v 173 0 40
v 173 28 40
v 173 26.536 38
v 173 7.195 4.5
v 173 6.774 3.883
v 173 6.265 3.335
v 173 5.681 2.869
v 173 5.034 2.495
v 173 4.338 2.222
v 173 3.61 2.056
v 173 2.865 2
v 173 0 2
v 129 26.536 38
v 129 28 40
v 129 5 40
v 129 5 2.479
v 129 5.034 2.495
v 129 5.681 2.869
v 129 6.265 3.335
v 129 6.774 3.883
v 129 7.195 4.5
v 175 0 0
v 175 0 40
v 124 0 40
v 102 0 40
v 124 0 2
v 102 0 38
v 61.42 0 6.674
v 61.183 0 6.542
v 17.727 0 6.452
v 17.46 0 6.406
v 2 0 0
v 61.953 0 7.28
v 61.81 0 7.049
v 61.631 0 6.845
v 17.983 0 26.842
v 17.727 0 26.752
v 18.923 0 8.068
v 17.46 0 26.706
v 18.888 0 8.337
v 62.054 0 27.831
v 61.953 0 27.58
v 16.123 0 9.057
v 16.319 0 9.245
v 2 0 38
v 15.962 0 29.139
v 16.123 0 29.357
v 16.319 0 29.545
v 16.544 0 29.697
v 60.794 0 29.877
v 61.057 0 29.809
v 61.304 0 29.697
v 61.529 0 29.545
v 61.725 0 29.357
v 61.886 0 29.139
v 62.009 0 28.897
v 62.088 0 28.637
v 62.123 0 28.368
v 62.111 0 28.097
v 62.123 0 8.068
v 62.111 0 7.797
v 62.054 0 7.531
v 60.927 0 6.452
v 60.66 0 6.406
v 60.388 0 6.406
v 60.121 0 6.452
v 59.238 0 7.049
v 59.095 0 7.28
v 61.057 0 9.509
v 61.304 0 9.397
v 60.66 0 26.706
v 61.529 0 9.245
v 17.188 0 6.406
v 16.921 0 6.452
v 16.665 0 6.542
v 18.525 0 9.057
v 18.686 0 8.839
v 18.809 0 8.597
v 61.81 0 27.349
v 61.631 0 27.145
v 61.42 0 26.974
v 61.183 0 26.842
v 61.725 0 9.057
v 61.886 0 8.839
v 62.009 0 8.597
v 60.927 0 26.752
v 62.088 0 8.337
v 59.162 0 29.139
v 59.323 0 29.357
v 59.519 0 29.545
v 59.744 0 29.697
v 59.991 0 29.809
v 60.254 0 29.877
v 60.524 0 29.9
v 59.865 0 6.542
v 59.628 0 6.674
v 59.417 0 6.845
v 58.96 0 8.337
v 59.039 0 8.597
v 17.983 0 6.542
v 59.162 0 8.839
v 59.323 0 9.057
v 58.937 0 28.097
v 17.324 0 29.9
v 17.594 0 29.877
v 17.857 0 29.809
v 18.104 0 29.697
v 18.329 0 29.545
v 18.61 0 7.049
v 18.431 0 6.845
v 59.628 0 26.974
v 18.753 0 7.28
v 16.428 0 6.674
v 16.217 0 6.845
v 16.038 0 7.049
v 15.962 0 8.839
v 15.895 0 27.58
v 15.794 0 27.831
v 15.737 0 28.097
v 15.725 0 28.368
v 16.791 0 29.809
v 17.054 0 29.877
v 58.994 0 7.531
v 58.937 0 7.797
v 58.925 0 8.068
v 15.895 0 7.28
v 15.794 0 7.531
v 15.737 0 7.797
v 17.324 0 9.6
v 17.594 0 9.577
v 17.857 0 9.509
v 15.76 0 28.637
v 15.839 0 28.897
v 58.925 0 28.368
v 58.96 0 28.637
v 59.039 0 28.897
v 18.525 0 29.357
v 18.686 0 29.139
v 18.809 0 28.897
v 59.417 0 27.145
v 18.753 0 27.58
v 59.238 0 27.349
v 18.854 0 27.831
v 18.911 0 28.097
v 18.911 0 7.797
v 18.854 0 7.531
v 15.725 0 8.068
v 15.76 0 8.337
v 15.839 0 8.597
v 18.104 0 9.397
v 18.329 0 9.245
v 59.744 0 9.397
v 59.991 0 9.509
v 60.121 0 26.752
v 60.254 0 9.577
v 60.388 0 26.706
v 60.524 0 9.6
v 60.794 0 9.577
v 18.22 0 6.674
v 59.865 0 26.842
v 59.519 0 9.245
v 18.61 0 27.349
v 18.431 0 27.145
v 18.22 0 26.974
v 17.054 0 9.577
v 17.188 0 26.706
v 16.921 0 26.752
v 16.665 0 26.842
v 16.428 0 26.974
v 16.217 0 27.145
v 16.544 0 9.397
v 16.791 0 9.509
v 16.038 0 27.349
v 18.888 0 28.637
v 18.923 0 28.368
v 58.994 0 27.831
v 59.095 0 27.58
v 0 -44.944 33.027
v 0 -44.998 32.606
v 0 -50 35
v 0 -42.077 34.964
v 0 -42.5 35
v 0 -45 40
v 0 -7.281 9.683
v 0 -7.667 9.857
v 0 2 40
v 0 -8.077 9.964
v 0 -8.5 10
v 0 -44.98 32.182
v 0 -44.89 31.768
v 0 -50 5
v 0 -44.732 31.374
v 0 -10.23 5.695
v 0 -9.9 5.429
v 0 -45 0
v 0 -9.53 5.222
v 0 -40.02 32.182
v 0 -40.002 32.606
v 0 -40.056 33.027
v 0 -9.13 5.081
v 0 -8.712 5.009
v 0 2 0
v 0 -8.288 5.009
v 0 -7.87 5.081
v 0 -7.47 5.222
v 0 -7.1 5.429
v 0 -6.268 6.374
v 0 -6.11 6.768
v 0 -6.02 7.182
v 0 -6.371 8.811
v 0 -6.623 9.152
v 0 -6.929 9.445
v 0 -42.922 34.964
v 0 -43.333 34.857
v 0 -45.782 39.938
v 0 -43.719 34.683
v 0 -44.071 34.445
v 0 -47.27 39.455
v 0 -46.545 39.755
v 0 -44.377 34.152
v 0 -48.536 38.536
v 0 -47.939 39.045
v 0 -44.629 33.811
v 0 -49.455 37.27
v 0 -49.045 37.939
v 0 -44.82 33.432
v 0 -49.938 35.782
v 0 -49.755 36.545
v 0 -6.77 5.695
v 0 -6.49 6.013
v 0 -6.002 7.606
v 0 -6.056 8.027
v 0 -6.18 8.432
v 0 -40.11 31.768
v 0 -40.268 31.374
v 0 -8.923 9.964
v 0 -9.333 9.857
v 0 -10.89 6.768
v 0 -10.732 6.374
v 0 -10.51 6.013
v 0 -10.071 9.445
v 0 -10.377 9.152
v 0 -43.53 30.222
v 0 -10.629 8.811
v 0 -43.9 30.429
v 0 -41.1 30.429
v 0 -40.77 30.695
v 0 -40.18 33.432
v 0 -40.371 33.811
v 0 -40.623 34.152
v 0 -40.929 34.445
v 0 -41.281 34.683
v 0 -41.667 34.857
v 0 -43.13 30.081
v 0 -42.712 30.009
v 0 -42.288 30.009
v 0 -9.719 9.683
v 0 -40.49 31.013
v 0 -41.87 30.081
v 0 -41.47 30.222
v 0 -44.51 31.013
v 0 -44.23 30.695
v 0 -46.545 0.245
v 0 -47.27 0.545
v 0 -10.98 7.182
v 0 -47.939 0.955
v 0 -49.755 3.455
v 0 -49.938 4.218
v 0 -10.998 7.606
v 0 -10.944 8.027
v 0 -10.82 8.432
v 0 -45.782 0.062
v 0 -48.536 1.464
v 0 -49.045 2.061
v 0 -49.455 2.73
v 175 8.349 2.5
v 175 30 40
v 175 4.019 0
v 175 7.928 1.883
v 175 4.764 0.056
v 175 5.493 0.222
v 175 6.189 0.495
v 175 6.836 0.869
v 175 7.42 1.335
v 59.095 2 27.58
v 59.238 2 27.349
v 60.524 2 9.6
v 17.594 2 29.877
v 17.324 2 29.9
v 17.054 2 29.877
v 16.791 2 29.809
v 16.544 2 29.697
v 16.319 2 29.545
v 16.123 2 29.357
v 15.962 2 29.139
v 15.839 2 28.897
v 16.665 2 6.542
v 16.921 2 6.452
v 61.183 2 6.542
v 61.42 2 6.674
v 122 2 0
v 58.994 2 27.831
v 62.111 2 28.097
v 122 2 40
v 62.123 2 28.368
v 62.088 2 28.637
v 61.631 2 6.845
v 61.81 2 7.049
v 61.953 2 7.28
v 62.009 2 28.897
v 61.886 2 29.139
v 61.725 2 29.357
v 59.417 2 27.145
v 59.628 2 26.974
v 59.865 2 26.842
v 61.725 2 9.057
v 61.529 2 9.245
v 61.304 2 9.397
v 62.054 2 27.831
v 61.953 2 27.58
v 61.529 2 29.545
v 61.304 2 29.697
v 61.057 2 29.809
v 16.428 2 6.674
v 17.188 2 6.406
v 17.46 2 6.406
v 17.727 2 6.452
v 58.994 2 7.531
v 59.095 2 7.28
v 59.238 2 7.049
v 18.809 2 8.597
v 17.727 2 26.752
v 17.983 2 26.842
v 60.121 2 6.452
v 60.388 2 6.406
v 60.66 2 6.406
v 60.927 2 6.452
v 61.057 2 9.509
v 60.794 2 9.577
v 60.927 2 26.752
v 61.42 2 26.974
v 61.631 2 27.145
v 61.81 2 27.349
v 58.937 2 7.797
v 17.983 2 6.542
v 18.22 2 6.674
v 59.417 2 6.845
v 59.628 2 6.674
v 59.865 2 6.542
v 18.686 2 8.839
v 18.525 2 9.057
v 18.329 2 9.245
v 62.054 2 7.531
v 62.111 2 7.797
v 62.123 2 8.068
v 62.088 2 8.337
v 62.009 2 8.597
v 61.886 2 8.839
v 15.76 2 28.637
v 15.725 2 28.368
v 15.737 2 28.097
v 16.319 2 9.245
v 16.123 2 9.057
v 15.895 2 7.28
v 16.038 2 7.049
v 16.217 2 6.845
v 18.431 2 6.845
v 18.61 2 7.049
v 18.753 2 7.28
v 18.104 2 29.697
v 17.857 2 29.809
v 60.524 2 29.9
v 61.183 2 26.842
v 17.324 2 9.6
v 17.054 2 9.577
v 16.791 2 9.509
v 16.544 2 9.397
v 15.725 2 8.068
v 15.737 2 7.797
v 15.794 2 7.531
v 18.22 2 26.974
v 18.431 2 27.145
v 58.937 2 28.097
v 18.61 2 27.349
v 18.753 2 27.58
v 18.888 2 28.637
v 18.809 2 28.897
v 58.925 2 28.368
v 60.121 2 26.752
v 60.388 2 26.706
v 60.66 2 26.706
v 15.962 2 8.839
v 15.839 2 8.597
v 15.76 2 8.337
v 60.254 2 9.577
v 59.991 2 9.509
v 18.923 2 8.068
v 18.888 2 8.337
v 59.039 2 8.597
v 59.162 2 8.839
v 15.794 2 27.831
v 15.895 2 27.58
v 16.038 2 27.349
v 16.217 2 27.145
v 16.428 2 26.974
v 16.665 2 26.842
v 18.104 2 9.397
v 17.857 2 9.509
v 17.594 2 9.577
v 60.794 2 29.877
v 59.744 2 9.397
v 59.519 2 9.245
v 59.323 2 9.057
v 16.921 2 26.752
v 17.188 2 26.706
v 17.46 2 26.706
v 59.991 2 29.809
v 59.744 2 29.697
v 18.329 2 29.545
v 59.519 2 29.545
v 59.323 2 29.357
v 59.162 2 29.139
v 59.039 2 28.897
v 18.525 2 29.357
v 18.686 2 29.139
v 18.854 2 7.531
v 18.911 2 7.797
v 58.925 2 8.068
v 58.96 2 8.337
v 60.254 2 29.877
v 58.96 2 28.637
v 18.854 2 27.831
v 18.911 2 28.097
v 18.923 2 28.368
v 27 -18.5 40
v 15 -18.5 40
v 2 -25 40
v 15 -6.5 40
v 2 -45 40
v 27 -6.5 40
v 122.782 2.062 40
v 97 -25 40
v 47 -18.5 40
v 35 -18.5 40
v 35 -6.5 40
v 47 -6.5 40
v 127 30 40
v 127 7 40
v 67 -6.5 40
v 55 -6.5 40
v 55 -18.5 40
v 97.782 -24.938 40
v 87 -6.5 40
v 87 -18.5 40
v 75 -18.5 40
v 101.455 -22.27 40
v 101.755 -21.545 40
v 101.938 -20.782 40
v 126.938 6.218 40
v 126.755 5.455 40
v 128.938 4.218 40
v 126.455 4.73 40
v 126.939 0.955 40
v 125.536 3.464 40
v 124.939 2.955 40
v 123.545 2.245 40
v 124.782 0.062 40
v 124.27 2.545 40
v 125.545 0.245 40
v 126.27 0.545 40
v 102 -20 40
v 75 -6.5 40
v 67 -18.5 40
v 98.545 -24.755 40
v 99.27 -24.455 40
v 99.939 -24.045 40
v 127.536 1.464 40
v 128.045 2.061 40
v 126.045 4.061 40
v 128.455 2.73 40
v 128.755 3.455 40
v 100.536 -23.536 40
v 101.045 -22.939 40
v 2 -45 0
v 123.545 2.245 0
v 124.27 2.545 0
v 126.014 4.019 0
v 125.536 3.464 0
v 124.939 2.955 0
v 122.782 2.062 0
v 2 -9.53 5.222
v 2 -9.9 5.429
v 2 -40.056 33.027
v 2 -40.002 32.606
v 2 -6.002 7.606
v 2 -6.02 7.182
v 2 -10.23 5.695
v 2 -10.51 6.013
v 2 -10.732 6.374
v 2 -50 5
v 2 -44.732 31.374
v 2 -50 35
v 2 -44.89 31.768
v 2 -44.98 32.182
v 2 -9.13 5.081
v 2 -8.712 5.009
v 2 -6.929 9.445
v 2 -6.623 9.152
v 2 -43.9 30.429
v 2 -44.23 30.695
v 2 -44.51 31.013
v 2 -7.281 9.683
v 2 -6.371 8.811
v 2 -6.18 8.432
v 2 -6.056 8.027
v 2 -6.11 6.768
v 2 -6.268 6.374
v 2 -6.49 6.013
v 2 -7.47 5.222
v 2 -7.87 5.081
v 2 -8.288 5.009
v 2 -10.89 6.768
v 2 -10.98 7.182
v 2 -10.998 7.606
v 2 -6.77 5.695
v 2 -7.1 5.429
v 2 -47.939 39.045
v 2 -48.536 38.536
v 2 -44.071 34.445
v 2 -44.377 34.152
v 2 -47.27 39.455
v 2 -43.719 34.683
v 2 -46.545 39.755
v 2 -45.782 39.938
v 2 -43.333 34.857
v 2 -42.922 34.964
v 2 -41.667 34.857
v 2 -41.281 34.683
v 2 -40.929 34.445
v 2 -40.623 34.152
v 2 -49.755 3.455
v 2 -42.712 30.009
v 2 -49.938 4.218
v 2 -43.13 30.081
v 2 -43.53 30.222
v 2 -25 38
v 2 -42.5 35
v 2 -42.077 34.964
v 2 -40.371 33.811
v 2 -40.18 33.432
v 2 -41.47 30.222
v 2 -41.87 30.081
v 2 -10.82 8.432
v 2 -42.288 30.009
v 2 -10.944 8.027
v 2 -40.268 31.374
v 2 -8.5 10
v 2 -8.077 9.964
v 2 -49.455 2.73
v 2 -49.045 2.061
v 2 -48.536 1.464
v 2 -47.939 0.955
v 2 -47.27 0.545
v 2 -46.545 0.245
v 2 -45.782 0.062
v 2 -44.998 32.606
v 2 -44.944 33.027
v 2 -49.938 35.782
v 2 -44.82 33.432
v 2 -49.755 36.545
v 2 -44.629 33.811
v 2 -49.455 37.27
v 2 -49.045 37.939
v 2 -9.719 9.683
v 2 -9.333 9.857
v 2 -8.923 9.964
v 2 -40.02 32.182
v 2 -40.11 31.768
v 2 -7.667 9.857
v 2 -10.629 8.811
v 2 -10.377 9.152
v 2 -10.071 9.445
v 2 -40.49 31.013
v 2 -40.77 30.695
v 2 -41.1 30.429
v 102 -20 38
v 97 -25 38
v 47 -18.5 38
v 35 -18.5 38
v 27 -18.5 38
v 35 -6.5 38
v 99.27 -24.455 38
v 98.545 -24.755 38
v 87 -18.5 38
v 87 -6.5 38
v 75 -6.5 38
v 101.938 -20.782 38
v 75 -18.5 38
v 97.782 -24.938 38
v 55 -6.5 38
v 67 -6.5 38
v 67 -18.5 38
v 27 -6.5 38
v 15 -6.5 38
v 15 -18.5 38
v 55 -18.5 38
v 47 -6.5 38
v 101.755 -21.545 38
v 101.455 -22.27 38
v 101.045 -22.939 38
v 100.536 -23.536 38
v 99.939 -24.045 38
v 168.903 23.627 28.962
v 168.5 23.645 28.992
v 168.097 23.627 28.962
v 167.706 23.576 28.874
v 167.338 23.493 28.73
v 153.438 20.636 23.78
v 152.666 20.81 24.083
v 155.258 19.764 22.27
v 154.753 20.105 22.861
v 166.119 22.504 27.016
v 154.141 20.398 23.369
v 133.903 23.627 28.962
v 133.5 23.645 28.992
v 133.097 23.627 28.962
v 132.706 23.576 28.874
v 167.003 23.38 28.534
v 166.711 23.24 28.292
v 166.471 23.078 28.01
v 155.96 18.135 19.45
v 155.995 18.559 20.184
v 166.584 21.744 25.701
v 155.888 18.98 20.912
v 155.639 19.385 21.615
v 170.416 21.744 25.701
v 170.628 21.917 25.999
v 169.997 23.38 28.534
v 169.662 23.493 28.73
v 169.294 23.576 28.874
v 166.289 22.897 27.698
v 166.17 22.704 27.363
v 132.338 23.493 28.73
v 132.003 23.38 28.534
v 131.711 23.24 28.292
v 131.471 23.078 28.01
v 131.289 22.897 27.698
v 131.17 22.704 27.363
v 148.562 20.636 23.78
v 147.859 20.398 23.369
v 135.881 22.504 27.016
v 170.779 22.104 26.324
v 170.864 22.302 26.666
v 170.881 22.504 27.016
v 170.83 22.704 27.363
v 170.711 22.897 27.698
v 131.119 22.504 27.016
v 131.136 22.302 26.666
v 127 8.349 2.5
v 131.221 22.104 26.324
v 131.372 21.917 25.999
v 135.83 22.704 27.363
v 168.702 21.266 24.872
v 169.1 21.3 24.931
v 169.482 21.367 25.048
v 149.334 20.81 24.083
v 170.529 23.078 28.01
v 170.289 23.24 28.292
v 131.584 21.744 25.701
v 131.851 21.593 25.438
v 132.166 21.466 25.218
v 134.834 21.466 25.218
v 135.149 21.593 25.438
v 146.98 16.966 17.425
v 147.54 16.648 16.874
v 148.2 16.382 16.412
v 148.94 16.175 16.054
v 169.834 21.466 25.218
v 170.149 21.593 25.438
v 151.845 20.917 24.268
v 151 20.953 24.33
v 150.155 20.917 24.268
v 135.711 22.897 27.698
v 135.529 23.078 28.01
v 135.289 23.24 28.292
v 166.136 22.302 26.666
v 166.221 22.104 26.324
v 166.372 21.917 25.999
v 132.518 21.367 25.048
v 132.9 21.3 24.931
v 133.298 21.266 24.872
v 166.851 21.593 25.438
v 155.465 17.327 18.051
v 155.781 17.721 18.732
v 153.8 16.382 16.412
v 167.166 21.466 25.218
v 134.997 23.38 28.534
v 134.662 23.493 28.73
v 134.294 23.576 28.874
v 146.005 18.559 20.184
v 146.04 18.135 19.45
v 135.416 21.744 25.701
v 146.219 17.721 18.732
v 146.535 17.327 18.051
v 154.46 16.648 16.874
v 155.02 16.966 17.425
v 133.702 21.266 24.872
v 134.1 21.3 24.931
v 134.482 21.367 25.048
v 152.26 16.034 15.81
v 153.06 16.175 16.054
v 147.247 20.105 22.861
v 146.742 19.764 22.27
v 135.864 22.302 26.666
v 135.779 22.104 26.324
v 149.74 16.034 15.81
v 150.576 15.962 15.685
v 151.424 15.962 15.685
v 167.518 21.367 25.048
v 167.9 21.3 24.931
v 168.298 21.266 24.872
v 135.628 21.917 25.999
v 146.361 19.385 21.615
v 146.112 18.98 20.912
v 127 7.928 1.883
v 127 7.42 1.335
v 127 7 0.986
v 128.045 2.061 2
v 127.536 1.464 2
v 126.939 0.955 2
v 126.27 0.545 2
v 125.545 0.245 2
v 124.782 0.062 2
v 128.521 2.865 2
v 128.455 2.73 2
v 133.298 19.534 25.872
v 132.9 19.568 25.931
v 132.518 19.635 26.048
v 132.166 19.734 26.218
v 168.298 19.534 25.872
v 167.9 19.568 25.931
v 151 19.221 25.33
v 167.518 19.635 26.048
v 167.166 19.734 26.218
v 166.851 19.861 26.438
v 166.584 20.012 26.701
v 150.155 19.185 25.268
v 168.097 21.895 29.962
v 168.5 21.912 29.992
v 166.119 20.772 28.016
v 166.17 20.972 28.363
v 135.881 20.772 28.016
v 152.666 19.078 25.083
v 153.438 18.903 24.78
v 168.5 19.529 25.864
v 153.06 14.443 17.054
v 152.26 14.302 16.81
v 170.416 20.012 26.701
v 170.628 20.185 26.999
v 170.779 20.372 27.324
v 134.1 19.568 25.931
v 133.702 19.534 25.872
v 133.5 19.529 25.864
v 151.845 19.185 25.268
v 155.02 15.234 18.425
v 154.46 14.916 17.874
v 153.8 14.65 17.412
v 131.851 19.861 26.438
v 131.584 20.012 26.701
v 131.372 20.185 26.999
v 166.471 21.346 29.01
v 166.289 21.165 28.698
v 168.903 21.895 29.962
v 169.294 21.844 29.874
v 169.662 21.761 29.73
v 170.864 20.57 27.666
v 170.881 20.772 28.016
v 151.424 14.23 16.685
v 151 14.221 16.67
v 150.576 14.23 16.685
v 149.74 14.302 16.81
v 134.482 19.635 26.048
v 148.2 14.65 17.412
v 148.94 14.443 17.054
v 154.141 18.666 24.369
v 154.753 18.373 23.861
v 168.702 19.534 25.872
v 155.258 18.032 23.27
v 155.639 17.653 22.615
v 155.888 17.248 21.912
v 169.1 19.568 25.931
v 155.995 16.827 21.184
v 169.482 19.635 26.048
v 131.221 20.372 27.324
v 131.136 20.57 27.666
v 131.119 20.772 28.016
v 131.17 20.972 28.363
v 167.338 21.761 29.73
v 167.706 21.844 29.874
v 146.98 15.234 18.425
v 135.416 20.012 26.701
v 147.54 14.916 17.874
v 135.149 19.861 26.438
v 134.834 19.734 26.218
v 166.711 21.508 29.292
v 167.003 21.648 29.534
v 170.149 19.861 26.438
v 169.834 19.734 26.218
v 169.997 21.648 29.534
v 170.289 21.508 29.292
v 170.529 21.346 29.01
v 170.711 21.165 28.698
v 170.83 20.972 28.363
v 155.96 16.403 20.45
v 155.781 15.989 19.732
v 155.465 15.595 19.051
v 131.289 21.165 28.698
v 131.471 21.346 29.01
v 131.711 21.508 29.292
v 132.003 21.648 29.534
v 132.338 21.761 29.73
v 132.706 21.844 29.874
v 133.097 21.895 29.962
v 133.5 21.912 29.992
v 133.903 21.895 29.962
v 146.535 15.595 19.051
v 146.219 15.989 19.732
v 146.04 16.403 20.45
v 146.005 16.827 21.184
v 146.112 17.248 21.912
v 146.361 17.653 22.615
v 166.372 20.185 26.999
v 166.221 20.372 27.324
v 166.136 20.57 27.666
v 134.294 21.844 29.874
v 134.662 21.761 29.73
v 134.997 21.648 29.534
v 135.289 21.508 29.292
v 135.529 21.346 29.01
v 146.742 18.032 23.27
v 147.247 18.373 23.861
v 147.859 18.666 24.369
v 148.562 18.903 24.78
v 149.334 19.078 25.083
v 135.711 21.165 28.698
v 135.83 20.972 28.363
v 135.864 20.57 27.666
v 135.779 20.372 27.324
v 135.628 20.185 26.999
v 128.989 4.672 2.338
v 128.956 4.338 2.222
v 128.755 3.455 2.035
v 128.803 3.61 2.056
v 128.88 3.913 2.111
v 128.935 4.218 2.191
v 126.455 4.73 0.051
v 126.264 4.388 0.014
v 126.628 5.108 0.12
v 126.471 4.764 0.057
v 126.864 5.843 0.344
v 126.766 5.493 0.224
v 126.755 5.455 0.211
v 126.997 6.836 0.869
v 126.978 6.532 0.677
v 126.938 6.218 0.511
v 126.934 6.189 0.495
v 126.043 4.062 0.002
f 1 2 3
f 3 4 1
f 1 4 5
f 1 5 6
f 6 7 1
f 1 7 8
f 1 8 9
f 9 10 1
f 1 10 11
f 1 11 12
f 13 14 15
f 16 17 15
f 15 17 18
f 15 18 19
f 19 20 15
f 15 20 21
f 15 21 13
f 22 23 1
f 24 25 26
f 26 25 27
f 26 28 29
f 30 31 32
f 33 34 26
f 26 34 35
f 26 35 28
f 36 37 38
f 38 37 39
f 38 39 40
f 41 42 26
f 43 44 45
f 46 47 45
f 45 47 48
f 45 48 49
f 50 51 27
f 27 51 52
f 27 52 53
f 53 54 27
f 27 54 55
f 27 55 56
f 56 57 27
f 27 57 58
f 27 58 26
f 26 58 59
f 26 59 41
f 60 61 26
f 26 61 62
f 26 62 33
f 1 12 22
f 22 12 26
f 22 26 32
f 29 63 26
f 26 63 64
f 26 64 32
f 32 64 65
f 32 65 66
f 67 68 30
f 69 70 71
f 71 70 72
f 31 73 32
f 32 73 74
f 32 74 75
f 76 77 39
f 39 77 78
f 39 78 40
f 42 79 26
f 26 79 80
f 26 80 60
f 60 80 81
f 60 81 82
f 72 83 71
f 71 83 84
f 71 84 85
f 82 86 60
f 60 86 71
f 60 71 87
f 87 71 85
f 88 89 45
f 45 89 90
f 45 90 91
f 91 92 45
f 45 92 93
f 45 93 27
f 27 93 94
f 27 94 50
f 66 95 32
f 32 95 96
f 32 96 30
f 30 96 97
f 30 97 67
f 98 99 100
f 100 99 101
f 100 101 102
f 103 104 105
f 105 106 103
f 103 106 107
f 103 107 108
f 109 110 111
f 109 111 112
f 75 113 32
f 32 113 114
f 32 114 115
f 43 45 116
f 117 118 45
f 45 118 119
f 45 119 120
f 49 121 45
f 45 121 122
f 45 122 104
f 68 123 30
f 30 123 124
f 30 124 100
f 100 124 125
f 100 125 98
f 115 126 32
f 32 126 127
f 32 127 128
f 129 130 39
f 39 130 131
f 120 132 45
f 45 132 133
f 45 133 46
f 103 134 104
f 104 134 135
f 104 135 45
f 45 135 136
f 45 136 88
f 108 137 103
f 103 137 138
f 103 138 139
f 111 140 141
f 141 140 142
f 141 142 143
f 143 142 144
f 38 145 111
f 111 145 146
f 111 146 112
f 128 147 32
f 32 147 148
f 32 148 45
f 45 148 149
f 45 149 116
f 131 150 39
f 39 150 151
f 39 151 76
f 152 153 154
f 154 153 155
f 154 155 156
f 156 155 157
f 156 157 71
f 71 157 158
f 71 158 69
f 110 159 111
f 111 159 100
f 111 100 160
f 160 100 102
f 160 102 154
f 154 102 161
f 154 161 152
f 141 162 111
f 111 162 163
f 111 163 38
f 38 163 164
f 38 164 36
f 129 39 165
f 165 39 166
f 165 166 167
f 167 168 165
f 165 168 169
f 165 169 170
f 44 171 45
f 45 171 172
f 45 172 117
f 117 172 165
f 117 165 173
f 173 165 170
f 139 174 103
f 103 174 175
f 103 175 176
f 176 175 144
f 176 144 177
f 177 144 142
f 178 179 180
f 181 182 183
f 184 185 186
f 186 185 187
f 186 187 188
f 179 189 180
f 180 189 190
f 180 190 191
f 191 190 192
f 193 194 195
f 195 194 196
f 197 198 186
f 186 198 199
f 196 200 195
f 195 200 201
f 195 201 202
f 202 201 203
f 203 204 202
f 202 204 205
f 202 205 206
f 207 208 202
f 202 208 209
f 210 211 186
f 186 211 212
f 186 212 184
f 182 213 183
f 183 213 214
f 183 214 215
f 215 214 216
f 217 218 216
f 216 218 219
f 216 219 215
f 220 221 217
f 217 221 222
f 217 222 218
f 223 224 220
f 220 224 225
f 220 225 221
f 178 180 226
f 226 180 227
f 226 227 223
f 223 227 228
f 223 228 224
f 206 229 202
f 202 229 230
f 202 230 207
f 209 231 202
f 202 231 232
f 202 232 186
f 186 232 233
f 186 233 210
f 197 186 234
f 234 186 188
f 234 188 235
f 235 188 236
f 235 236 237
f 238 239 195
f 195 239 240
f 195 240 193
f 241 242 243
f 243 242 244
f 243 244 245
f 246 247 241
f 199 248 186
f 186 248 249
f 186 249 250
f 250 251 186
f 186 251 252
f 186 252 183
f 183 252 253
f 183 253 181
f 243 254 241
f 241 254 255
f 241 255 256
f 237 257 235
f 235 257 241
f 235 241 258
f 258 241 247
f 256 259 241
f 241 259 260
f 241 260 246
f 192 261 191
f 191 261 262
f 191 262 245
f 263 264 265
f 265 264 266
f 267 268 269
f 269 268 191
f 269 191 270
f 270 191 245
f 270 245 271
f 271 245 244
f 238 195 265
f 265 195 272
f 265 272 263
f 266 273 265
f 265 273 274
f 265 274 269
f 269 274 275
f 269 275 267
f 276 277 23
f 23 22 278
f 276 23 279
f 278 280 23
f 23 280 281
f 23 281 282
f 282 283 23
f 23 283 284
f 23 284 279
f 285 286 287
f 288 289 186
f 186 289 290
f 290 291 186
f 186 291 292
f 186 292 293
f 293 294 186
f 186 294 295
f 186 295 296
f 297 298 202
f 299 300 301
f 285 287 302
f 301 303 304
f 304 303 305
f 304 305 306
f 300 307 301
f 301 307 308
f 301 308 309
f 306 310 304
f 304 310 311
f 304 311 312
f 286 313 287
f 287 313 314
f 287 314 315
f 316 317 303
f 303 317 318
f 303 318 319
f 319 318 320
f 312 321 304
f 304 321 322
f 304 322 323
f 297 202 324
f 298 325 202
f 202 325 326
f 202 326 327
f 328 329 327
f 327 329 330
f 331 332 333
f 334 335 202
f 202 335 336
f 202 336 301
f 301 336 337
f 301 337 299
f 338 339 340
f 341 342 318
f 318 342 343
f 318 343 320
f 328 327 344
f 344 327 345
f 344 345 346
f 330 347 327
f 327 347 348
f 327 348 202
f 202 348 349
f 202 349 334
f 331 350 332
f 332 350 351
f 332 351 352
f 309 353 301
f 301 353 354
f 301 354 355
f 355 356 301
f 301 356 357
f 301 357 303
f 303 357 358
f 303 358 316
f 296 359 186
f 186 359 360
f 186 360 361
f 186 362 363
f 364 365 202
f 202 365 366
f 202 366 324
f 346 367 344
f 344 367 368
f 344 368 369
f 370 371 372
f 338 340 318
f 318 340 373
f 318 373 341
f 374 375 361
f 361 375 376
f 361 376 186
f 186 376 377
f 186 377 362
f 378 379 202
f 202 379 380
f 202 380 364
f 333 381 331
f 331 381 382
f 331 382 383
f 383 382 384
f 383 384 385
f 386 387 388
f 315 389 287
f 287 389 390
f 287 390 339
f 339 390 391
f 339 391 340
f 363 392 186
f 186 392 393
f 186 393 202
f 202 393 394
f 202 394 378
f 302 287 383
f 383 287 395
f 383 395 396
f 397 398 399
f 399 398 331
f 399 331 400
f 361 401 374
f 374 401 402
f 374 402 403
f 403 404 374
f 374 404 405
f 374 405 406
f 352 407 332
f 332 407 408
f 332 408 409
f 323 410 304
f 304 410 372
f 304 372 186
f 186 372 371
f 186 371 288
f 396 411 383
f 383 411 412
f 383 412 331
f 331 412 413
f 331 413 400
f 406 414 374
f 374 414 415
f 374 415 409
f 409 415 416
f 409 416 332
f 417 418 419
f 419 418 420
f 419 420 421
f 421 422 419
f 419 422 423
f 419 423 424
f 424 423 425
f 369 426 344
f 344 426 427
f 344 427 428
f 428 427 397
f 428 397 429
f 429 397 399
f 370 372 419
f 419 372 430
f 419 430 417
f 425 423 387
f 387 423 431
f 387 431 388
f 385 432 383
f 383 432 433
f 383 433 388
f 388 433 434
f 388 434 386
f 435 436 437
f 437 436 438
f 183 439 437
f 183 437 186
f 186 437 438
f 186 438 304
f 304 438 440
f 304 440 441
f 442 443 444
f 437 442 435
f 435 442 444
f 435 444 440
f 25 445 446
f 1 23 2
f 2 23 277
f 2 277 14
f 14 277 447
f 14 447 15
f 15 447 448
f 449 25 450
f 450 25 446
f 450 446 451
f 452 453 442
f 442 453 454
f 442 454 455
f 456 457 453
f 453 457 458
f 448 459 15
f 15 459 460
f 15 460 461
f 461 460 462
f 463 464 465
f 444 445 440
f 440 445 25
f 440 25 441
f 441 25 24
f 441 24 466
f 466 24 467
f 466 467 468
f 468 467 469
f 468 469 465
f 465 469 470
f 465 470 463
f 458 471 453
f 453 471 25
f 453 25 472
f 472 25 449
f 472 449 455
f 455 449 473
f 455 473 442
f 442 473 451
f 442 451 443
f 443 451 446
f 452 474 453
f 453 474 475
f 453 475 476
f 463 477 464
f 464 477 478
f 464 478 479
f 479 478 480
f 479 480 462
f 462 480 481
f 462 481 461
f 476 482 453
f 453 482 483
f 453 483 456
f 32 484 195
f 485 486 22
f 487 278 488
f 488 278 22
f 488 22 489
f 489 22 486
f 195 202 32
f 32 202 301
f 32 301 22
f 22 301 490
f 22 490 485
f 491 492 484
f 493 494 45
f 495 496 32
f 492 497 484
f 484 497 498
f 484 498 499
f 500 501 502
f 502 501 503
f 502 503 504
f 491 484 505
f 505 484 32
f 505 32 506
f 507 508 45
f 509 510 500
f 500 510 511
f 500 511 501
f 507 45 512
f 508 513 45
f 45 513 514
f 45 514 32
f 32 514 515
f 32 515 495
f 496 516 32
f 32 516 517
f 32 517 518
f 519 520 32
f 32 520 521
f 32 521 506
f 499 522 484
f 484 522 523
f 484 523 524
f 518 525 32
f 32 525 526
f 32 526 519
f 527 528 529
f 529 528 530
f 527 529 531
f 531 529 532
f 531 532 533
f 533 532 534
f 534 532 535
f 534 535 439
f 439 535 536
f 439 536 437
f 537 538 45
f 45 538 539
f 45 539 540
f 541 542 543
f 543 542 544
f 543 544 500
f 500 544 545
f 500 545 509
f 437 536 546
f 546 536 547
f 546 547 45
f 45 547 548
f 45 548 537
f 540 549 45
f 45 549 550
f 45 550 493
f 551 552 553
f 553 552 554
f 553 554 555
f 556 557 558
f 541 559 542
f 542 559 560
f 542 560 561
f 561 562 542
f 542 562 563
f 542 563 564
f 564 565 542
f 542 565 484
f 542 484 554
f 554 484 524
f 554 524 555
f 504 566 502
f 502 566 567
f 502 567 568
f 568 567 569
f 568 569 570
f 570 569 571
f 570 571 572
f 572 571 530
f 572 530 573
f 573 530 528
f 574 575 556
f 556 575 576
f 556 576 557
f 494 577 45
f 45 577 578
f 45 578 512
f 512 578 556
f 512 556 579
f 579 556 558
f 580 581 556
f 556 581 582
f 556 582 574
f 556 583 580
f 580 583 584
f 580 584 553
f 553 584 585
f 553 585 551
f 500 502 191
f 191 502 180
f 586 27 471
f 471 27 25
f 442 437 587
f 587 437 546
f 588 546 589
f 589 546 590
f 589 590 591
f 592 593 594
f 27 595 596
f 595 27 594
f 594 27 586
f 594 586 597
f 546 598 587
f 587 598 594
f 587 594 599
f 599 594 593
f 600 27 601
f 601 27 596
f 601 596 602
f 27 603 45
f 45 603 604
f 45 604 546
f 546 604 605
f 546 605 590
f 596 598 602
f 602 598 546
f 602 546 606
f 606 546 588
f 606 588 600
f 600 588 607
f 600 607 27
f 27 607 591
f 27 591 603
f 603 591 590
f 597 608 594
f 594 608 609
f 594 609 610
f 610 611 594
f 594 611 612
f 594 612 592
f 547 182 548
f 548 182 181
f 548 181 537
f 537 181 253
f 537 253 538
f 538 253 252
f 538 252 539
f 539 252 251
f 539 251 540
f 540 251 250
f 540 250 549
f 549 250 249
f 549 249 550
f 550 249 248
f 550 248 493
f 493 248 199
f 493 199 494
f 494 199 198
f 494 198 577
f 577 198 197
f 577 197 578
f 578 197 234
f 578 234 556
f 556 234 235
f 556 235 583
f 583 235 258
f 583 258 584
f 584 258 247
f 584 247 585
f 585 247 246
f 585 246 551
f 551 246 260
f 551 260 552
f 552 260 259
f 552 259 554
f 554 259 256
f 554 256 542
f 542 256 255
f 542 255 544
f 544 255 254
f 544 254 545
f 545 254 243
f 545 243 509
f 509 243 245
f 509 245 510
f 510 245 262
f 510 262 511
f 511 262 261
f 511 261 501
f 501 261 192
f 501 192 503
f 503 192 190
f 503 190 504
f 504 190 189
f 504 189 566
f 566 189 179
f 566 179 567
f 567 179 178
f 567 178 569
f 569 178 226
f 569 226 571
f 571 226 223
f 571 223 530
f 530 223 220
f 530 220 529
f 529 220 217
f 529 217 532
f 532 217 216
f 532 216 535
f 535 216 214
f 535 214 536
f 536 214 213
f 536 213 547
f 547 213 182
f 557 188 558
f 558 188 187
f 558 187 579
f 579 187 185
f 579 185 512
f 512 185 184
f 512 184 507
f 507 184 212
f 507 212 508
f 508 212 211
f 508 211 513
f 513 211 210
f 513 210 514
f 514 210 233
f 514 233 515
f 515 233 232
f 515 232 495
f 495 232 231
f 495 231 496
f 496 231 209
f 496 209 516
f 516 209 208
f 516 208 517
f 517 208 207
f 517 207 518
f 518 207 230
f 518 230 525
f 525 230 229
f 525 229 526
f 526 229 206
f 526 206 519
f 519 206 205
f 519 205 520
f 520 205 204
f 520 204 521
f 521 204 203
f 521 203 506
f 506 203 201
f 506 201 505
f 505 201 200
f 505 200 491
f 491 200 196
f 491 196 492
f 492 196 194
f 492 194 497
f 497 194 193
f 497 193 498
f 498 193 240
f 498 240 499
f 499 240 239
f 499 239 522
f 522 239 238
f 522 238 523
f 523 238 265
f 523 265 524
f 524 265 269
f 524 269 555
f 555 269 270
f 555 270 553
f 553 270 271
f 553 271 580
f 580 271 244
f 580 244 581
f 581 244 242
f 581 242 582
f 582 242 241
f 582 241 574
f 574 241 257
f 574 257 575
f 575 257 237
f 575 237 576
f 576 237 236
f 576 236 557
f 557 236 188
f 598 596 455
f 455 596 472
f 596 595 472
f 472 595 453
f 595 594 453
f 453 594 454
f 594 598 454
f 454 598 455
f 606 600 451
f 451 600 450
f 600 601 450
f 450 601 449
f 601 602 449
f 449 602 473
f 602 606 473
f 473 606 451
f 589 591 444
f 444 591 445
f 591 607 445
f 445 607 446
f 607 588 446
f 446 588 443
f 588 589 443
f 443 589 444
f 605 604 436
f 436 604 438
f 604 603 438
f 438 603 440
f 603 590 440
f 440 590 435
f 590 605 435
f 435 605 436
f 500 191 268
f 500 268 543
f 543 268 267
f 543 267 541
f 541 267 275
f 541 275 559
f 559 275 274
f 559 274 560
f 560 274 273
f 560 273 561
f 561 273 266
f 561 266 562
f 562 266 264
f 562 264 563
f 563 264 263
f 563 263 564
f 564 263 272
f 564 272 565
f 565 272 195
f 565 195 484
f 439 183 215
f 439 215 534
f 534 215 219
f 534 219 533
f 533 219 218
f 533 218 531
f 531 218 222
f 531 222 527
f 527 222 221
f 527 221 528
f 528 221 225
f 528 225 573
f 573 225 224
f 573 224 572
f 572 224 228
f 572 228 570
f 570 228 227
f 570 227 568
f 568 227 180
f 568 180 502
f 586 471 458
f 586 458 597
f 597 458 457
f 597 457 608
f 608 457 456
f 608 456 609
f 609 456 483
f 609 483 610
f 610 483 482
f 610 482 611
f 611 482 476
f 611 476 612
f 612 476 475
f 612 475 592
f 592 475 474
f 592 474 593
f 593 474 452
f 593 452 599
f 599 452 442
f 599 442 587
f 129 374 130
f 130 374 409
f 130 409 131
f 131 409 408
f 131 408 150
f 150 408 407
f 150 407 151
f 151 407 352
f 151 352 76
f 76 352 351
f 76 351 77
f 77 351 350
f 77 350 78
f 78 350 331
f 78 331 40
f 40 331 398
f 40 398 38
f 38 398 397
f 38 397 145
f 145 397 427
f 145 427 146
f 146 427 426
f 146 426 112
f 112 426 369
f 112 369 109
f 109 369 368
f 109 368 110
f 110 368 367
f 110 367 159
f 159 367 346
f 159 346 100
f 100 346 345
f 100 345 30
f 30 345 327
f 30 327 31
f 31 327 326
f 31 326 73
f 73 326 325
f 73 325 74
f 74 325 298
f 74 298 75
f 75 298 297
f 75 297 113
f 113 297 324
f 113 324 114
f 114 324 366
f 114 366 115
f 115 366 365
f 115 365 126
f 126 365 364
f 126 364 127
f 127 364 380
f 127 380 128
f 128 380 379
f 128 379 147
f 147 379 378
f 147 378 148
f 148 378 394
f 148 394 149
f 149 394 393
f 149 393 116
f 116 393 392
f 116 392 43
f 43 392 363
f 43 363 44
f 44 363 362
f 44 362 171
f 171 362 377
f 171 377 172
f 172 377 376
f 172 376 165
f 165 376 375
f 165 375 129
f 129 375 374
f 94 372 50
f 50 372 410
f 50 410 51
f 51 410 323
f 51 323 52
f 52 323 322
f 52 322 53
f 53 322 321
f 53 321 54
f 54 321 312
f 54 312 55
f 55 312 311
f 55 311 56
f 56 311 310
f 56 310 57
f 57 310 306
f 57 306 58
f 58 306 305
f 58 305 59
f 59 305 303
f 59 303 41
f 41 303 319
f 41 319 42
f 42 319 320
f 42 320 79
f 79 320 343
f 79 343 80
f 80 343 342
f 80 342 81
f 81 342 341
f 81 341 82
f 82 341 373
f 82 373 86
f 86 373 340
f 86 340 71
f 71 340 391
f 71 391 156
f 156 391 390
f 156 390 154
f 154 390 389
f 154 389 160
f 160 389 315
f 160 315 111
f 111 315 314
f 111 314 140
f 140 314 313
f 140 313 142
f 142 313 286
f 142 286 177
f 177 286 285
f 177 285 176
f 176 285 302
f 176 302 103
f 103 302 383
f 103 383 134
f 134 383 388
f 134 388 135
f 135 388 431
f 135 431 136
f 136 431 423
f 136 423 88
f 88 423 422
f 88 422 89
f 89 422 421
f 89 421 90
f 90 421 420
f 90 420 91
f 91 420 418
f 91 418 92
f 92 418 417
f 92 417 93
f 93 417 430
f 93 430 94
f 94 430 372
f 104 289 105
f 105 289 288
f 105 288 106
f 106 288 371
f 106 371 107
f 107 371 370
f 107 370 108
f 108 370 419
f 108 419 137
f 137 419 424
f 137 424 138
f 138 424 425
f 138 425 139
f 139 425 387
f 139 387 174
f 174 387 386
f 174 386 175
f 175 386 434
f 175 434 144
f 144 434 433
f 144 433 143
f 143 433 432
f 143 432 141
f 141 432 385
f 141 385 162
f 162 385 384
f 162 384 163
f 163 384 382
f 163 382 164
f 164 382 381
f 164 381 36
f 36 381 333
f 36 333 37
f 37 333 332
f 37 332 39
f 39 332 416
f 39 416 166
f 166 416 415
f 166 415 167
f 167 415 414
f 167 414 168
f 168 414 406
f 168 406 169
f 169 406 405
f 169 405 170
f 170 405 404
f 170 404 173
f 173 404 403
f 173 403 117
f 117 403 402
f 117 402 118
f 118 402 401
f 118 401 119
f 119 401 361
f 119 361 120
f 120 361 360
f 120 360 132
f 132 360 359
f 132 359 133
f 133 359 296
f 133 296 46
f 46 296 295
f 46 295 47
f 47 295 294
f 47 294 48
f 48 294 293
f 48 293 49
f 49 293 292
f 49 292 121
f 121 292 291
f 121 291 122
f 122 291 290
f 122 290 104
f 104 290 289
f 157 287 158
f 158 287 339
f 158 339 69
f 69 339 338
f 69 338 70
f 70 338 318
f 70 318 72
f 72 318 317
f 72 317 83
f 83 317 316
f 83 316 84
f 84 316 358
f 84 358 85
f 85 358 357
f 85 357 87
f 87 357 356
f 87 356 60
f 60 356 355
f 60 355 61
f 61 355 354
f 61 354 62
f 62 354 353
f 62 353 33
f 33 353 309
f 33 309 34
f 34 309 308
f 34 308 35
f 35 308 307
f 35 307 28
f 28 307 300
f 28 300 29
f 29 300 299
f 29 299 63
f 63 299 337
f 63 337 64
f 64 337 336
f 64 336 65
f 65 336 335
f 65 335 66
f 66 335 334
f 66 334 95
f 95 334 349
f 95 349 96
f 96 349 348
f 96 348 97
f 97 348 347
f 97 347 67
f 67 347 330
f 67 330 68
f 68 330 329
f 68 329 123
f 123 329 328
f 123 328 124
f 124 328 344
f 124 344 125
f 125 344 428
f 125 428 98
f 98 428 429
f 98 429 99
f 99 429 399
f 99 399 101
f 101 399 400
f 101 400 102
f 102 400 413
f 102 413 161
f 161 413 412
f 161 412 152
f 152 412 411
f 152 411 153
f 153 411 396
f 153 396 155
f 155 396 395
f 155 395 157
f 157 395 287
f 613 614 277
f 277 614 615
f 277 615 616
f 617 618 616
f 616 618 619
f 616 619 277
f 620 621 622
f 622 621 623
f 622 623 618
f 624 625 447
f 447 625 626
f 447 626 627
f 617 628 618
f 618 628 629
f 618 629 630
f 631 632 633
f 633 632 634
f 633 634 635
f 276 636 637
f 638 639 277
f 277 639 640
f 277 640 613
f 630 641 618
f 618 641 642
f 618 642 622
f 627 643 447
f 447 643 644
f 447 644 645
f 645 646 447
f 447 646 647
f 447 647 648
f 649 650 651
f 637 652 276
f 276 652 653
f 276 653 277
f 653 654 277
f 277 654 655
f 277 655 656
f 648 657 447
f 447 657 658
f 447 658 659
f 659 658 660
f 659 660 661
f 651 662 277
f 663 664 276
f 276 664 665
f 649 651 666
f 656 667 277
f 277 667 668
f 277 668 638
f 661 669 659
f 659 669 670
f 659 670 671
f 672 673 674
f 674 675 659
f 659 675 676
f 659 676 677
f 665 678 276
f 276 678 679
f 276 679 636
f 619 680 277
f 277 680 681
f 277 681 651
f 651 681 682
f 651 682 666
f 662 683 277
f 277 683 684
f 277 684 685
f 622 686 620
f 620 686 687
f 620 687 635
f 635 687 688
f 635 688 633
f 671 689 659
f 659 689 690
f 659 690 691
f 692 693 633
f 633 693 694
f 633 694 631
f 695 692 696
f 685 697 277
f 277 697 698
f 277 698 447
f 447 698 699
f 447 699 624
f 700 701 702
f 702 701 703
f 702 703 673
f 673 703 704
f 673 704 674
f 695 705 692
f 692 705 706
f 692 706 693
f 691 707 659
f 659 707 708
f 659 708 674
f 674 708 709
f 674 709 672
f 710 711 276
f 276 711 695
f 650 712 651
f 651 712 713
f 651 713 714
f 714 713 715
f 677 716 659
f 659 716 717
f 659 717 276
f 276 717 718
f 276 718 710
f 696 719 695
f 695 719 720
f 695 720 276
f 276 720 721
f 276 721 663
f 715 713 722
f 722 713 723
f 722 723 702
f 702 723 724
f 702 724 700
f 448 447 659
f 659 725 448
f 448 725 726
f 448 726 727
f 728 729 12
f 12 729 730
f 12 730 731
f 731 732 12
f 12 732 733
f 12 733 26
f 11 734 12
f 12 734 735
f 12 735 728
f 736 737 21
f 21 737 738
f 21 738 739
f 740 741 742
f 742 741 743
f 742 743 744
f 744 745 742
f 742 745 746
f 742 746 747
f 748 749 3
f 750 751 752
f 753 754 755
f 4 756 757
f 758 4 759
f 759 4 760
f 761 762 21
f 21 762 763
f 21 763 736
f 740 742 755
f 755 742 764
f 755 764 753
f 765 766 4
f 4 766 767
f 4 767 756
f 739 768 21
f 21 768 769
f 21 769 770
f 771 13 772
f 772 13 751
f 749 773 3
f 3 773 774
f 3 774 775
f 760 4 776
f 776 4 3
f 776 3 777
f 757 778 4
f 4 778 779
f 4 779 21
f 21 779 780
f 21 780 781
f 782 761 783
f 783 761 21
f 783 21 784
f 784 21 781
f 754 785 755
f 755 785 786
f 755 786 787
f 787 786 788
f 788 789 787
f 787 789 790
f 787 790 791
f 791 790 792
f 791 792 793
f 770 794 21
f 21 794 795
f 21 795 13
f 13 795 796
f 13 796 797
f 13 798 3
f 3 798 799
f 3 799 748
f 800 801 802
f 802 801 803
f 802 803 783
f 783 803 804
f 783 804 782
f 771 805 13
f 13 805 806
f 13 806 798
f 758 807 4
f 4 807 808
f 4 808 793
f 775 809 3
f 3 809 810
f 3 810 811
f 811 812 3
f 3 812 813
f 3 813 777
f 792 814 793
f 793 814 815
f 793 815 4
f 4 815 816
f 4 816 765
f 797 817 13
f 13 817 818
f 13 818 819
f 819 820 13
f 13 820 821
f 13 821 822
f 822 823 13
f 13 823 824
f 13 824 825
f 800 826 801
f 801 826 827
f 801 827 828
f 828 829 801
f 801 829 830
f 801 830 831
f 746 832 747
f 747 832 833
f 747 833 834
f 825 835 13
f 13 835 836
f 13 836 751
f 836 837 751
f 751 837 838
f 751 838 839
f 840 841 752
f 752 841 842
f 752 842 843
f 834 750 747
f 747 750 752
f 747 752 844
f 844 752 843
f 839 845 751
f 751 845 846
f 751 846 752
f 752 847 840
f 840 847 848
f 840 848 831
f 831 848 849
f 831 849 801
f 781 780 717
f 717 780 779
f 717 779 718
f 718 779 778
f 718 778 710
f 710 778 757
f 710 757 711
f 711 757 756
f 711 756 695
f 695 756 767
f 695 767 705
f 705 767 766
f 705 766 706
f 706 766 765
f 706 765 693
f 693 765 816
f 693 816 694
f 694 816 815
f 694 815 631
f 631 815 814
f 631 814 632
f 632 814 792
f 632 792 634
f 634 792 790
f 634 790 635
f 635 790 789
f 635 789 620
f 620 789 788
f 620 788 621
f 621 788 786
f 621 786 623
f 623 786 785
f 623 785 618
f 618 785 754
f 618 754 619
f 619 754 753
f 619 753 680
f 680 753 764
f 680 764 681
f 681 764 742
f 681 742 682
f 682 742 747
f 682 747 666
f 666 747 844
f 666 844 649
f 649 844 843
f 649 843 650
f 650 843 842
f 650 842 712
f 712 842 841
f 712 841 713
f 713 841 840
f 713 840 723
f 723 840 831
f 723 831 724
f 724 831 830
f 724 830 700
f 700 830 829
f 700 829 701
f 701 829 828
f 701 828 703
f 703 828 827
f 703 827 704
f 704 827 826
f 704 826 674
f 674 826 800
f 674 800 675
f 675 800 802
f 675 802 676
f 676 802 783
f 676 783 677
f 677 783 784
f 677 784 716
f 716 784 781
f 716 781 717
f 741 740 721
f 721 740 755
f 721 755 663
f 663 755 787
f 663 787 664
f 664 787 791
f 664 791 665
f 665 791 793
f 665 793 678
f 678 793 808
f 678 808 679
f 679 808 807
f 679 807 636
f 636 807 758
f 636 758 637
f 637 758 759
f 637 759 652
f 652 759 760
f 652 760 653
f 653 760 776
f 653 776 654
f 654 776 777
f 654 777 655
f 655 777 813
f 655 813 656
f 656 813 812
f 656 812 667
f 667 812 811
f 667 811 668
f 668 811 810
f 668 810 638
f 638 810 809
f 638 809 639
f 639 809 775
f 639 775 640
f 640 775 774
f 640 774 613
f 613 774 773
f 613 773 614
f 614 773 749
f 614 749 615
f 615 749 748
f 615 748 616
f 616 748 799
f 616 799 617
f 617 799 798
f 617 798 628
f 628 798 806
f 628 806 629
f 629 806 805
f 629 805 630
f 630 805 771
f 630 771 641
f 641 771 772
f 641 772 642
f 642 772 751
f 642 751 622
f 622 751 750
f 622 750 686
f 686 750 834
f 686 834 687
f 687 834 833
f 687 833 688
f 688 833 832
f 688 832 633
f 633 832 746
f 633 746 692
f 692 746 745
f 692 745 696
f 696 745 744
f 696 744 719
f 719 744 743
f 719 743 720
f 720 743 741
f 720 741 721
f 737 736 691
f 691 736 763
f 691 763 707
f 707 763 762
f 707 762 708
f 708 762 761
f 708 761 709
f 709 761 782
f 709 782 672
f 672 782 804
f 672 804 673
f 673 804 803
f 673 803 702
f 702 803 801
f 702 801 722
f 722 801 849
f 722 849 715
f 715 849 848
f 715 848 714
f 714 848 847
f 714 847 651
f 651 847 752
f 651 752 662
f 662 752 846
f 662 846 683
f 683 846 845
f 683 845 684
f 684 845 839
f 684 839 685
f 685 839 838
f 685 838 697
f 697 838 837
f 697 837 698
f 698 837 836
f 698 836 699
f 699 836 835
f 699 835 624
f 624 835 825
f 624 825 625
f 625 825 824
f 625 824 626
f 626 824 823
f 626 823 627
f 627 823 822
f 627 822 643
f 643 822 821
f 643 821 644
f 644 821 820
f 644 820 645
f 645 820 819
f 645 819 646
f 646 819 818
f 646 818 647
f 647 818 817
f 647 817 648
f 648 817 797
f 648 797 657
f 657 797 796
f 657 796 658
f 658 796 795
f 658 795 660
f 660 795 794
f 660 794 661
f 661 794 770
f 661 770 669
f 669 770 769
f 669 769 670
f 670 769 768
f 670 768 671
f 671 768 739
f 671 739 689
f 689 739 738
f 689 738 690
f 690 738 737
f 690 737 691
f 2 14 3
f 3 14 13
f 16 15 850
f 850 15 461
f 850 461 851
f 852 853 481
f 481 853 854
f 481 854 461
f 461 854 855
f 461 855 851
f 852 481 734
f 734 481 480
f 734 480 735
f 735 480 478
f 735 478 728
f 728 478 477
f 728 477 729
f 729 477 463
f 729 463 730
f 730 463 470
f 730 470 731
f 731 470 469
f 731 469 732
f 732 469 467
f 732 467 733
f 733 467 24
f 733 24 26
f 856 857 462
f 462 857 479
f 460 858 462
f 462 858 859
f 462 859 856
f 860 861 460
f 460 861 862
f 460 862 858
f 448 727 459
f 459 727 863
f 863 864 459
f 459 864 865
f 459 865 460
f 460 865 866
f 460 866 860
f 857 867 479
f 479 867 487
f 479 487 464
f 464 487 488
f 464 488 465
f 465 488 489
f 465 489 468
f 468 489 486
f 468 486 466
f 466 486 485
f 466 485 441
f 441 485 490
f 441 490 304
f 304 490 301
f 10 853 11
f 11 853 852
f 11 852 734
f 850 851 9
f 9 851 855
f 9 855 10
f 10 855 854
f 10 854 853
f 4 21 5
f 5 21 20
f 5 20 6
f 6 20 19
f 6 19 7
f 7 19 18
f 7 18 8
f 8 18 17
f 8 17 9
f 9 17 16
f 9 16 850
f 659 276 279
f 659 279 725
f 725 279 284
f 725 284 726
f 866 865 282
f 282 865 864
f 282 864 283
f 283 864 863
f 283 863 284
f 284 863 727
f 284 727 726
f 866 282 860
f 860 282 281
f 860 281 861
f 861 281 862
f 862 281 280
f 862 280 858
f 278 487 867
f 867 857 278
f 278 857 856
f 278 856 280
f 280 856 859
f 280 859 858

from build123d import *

# Parameters (mm, degrees)
SKETCH1_W           = 175
SKETCH1_H           = 2
BOSS_EXTRUDE1_DEPTH = 40
SKETCH2_W           = 2
SKETCH2_H           = 40
BOSS_EXTRUDE2_DEPTH = 50
SKETCH3_W           = 100
SKETCH3_H           = 25
BOSS_EXTRUDE3_DEPTH = 2
SKETCH4_R           = 2.5
CUT_EXTRUDE1_DEPTH  = 2
SKETCH5_W           = 12
SKETCH5_H           = 12
CUT_EXTRUDE2_DEPTH  = 2
FILLET1_R           = 5
SKETCH6_R           = 1.6
CUT_EXTRUDE3_DEPTH  = 2
BOSS_EXTRUDE4_DEPTH = 48
SHELL1_DEPTH        = 5.751288694
SHELL1_START        = 4
SHELL1_2_DEPTH      = 1.751288694
SHELL1_START_2      = 129
SHELL1_3_DEPTH      = 44
SKETCH8_R           = 5
SKETCH8_R_2         = 2.383029524
CUT_EXTRUDE4_DEPTH  = 44
SKETCH10_W          = 44
SKETCH10_H          = 28
CUT_EXTRUDE5_DEPTH  = 2
BOSS_EXTRUDE5_REACH = 146.017
SKETCH12_W          = 5.470592624
SKETCH12_H          = 9.51694338
SKETCH12_W_2        = 4.594349632
SKETCH12_H_2        = 8.868192378
CUT_EXTRUDE6_DEPTH  = 188.459328922
SKETCH13_W          = 40
SKETCH13_H          = 2
BOSS_EXTRUDE6_DEPTH = 2
SKETCH14_W          = 3
SKETCH14_H          = 2
BOSS_EXTRUDE7_DEPTH = 2
FILLET3_R           = 5
FILLET4_R           = 5


with BuildPart() as part:
    # Sketch1 → Boss-Extrude1 (new body)
    with BuildSketch(Plane.XY):
        with Locations((87.5, 1)):
            Rectangle(SKETCH1_W, SKETCH1_H)
    extrude(amount=BOSS_EXTRUDE1_DEPTH)

    # Sketch2 → Boss-Extrude2 (add)
    with BuildSketch(Plane.XZ):
        with Locations((1, 20)):
            Rectangle(SKETCH2_W, SKETCH2_H)
    extrude(amount=BOSS_EXTRUDE2_DEPTH)

    # Sketch3 → Boss-Extrude3 (add)
    with BuildSketch(Plane.XY.offset(40)):
        with Locations((52, -12.5)):
            Rectangle(SKETCH3_W, SKETCH3_H)
    extrude(amount=-BOSS_EXTRUDE3_DEPTH)

    # Sketch4 → Cut-Extrude1 (cut)
    with BuildSketch(Plane.ZY):
        with Locations((7.5, -8.5)):
            Circle(SKETCH4_R)
        with Locations((32.5, -42.5)):
            Circle(SKETCH4_R)
    extrude(amount=-CUT_EXTRUDE1_DEPTH, mode=Mode.SUBTRACT)

    # Sketch5 → Cut-Extrude2 (cut)
    with BuildSketch(Plane.XY.offset(40)):
        with Locations((21, -12.5)):
            Rectangle(SKETCH5_W, SKETCH5_H)
        with Locations((41, -12.5)):
            Rectangle(SKETCH5_W, SKETCH5_H)
        with Locations((61, -12.5)):
            Rectangle(SKETCH5_W, SKETCH5_H)
        with Locations((81, -12.5)):
            Rectangle(SKETCH5_W, SKETCH5_H)
    extrude(amount=-CUT_EXTRUDE2_DEPTH, mode=Mode.SUBTRACT)

    # Fillet1
    fillet1_edges = [part.edges().sort_by_distance(p)[0] for p in [
        (175, 1, 40),
        (1, -50, 0),
        (1, -50, 40),
        (102, -25, 39),
        (175, 1, 0),
    ]]
    fillet(fillet1_edges, radius=FILLET1_R)

    # Sketch6 → Cut-Extrude3 (cut)
    with BuildSketch(Plane(origin=(0, 2, 0), x_dir=(1, 0, 0), z_dir=(0, 1, 0))):
        with Locations(Location((17.323948769, -8, 0), (0, 0, 270))):
            Circle(SKETCH6_R)
        with Locations(Location((60.523948769, -8, 0), (0, 0, 270))):
            Circle(SKETCH6_R)
        with Locations(Location((17.323948769, -28.3, 0), (0, 0, 270))):
            Circle(SKETCH6_R)
        with Locations(Location((60.523948769, -28.3, 0), (0, 0, 270))):
            Circle(SKETCH6_R)
    extrude(amount=-CUT_EXTRUDE3_DEPTH, mode=Mode.SUBTRACT)

    # Sketch7 → Boss-Extrude4 (add)
    with BuildSketch(Plane(origin=(127, 0, 0), x_dir=(0, 0, -1), z_dir=(1, 0, 0))):
        Polygon((0, 6.905989232), (-40, 30), (-40, 2), (0, 2), align=None)
    extrude(amount=BOSS_EXTRUDE4_DEPTH)

    # Shell1: read off the stored shape, not the designer's step
    # Shell1 outline → Shell1 (cut)
    with BuildSketch(Plane(origin=(0, 0, 0), x_dir=(1, 0, 0), z_dir=(0, 1, 0))):
        with BuildLine():
            Line((129, -38), (170, -38))
            ThreePointArc((170, -38), (172.121320344, -37.121320344), (173, -35))
            Line((173, -35), (173, -5))
            ThreePointArc((173, -5), (172.121320344, -2.878679656), (170, -2))
            Line((170, -2), (129, -2))
            Line((129, -2), (129, -38))
        make_face()
    extrude(amount=SHELL1_DEPTH, mode=Mode.SUBTRACT)

    # Shell1 2 outline → Shell1 2 (cut)
    with BuildSketch(Plane(origin=(0, 0, 0), x_dir=(1, 0, 0), z_dir=(0, 1, 0)).offset(SHELL1_START)):
        with BuildLine():
            Line((170, -38), (173, -38))
            Line((173, -38), (173, -35))
            ThreePointArc((173, -35), (172.121320344, -37.121320344), (170, -38))
        make_face()
        with BuildLine():
            ThreePointArc((170, -2), (172.121320344, -2.878679656), (173, -5))
            Line((173, -5), (173, -2))
            Line((173, -2), (170, -2))
        make_face()
    extrude(amount=SHELL1_2_DEPTH, mode=Mode.SUBTRACT)

    # Shell1 3 outline → Shell1 3 (cut)
    with BuildSketch(Plane.YZ.offset(SHELL1_START_2)):
        Polygon((26.535898385, 38), (5.751288694, 38), (5.751288694, 2), align=None)
    extrude(amount=SHELL1_3_DEPTH, mode=Mode.SUBTRACT)

    # Sketch8 → Cut-Extrude4 (cut)
    with BuildSketch(Plane(origin=(0, 5.179491924, -2.990381057), x_dir=(1, 0, 0), z_dir=(0, 0.8660254037844417, -0.49999999999999495))):
        with Locations(Location((151, -26.546994616, 0), (0, 0, 270))):
            Circle(SKETCH8_R)
        with Locations(Location((168.5, -34.546994616, 0), (0, 0, 270))):
            Circle(SKETCH8_R_2)
        with Locations(Location((133.5, -34.546994616, 0), (0, 0, 270))):
            Circle(SKETCH8_R_2)
    extrude(amount=-CUT_EXTRUDE4_DEPTH, mode=Mode.SUBTRACT)

    # Sketch10 → Cut-Extrude5 (cut)
    with BuildSketch(Plane.XY.offset(40)):
        with Locations((151, 14)):
            Rectangle(SKETCH10_W, SKETCH10_H)
    extrude(amount=-CUT_EXTRUDE5_DEPTH, mode=Mode.SUBTRACT)

    # Sketch11 → Boss-Extrude5 (add, up to next)
    with BuildSketch(Plane(origin=(129, 0, 0), x_dir=(0, 0, -1), z_dir=(1, 0, 0)), mode=Mode.PRIVATE) as boss_extrude5_sk1:
        Polygon((-38, 26.535898385), (-40, 28), (-38, 28), align=None)
    boss_extrude5_tool1 = extrude(boss_extrude5_sk1.sketch, amount=BOSS_EXTRUDE5_REACH, mode=Mode.PRIVATE) - part.part
    add(boss_extrude5_tool1.solids().sort_by_distance((129, 27.511966, 38.666667))[0])

    # Sketch12 → Cut-Extrude6 (cut, through all)
    with BuildSketch(Plane(origin=(0, 4, 0), x_dir=(1, 0, 0), z_dir=(0, 1, 0))):
        with Locations((170.264703688, -39.75847169)):
            Rectangle(SKETCH12_W, SKETCH12_H)
        with Locations((170.702825184, -6.434096189)):
            Rectangle(SKETCH12_W_2, SKETCH12_H_2)
    extrude(amount=-CUT_EXTRUDE6_DEPTH, mode=Mode.SUBTRACT)

    # Sketch13 → Boss-Extrude6 (add)
    with BuildSketch(Plane(origin=(175, 0, 0), x_dir=(0, 0, -1), z_dir=(1, 0, 0))):
        with Locations((-20, 1)):
            Rectangle(SKETCH13_W, SKETCH13_H)
    extrude(amount=-BOSS_EXTRUDE6_DEPTH)

    # Sketch14 → Boss-Extrude7 (add)
    with BuildSketch(Plane(origin=(0, 0, 0), x_dir=(-1, 0, 0), z_dir=(0, 0, -1))):
        with Locations((-171.5, 1)):
            Rectangle(SKETCH14_W, SKETCH14_H)
    extrude(amount=-BOSS_EXTRUDE7_DEPTH)

    # Fillet3
    fillet3_edges = [part.edges().sort_by_distance(p)[0] for p in [
        (129, 0, 21),
        (127, 2, 20),
    ]]
    fillet(fillet3_edges, radius=FILLET3_R)

    # Fillet4
    fillet4_edges = [part.edges().sort_by_distance(p)[0] for p in [
        (151, 5.751288694, 2),
        (150.99955806, 6.905989232, 0),
    ]]
    fillet(fillet4_edges, radius=FILLET4_R)


solid = part.part
